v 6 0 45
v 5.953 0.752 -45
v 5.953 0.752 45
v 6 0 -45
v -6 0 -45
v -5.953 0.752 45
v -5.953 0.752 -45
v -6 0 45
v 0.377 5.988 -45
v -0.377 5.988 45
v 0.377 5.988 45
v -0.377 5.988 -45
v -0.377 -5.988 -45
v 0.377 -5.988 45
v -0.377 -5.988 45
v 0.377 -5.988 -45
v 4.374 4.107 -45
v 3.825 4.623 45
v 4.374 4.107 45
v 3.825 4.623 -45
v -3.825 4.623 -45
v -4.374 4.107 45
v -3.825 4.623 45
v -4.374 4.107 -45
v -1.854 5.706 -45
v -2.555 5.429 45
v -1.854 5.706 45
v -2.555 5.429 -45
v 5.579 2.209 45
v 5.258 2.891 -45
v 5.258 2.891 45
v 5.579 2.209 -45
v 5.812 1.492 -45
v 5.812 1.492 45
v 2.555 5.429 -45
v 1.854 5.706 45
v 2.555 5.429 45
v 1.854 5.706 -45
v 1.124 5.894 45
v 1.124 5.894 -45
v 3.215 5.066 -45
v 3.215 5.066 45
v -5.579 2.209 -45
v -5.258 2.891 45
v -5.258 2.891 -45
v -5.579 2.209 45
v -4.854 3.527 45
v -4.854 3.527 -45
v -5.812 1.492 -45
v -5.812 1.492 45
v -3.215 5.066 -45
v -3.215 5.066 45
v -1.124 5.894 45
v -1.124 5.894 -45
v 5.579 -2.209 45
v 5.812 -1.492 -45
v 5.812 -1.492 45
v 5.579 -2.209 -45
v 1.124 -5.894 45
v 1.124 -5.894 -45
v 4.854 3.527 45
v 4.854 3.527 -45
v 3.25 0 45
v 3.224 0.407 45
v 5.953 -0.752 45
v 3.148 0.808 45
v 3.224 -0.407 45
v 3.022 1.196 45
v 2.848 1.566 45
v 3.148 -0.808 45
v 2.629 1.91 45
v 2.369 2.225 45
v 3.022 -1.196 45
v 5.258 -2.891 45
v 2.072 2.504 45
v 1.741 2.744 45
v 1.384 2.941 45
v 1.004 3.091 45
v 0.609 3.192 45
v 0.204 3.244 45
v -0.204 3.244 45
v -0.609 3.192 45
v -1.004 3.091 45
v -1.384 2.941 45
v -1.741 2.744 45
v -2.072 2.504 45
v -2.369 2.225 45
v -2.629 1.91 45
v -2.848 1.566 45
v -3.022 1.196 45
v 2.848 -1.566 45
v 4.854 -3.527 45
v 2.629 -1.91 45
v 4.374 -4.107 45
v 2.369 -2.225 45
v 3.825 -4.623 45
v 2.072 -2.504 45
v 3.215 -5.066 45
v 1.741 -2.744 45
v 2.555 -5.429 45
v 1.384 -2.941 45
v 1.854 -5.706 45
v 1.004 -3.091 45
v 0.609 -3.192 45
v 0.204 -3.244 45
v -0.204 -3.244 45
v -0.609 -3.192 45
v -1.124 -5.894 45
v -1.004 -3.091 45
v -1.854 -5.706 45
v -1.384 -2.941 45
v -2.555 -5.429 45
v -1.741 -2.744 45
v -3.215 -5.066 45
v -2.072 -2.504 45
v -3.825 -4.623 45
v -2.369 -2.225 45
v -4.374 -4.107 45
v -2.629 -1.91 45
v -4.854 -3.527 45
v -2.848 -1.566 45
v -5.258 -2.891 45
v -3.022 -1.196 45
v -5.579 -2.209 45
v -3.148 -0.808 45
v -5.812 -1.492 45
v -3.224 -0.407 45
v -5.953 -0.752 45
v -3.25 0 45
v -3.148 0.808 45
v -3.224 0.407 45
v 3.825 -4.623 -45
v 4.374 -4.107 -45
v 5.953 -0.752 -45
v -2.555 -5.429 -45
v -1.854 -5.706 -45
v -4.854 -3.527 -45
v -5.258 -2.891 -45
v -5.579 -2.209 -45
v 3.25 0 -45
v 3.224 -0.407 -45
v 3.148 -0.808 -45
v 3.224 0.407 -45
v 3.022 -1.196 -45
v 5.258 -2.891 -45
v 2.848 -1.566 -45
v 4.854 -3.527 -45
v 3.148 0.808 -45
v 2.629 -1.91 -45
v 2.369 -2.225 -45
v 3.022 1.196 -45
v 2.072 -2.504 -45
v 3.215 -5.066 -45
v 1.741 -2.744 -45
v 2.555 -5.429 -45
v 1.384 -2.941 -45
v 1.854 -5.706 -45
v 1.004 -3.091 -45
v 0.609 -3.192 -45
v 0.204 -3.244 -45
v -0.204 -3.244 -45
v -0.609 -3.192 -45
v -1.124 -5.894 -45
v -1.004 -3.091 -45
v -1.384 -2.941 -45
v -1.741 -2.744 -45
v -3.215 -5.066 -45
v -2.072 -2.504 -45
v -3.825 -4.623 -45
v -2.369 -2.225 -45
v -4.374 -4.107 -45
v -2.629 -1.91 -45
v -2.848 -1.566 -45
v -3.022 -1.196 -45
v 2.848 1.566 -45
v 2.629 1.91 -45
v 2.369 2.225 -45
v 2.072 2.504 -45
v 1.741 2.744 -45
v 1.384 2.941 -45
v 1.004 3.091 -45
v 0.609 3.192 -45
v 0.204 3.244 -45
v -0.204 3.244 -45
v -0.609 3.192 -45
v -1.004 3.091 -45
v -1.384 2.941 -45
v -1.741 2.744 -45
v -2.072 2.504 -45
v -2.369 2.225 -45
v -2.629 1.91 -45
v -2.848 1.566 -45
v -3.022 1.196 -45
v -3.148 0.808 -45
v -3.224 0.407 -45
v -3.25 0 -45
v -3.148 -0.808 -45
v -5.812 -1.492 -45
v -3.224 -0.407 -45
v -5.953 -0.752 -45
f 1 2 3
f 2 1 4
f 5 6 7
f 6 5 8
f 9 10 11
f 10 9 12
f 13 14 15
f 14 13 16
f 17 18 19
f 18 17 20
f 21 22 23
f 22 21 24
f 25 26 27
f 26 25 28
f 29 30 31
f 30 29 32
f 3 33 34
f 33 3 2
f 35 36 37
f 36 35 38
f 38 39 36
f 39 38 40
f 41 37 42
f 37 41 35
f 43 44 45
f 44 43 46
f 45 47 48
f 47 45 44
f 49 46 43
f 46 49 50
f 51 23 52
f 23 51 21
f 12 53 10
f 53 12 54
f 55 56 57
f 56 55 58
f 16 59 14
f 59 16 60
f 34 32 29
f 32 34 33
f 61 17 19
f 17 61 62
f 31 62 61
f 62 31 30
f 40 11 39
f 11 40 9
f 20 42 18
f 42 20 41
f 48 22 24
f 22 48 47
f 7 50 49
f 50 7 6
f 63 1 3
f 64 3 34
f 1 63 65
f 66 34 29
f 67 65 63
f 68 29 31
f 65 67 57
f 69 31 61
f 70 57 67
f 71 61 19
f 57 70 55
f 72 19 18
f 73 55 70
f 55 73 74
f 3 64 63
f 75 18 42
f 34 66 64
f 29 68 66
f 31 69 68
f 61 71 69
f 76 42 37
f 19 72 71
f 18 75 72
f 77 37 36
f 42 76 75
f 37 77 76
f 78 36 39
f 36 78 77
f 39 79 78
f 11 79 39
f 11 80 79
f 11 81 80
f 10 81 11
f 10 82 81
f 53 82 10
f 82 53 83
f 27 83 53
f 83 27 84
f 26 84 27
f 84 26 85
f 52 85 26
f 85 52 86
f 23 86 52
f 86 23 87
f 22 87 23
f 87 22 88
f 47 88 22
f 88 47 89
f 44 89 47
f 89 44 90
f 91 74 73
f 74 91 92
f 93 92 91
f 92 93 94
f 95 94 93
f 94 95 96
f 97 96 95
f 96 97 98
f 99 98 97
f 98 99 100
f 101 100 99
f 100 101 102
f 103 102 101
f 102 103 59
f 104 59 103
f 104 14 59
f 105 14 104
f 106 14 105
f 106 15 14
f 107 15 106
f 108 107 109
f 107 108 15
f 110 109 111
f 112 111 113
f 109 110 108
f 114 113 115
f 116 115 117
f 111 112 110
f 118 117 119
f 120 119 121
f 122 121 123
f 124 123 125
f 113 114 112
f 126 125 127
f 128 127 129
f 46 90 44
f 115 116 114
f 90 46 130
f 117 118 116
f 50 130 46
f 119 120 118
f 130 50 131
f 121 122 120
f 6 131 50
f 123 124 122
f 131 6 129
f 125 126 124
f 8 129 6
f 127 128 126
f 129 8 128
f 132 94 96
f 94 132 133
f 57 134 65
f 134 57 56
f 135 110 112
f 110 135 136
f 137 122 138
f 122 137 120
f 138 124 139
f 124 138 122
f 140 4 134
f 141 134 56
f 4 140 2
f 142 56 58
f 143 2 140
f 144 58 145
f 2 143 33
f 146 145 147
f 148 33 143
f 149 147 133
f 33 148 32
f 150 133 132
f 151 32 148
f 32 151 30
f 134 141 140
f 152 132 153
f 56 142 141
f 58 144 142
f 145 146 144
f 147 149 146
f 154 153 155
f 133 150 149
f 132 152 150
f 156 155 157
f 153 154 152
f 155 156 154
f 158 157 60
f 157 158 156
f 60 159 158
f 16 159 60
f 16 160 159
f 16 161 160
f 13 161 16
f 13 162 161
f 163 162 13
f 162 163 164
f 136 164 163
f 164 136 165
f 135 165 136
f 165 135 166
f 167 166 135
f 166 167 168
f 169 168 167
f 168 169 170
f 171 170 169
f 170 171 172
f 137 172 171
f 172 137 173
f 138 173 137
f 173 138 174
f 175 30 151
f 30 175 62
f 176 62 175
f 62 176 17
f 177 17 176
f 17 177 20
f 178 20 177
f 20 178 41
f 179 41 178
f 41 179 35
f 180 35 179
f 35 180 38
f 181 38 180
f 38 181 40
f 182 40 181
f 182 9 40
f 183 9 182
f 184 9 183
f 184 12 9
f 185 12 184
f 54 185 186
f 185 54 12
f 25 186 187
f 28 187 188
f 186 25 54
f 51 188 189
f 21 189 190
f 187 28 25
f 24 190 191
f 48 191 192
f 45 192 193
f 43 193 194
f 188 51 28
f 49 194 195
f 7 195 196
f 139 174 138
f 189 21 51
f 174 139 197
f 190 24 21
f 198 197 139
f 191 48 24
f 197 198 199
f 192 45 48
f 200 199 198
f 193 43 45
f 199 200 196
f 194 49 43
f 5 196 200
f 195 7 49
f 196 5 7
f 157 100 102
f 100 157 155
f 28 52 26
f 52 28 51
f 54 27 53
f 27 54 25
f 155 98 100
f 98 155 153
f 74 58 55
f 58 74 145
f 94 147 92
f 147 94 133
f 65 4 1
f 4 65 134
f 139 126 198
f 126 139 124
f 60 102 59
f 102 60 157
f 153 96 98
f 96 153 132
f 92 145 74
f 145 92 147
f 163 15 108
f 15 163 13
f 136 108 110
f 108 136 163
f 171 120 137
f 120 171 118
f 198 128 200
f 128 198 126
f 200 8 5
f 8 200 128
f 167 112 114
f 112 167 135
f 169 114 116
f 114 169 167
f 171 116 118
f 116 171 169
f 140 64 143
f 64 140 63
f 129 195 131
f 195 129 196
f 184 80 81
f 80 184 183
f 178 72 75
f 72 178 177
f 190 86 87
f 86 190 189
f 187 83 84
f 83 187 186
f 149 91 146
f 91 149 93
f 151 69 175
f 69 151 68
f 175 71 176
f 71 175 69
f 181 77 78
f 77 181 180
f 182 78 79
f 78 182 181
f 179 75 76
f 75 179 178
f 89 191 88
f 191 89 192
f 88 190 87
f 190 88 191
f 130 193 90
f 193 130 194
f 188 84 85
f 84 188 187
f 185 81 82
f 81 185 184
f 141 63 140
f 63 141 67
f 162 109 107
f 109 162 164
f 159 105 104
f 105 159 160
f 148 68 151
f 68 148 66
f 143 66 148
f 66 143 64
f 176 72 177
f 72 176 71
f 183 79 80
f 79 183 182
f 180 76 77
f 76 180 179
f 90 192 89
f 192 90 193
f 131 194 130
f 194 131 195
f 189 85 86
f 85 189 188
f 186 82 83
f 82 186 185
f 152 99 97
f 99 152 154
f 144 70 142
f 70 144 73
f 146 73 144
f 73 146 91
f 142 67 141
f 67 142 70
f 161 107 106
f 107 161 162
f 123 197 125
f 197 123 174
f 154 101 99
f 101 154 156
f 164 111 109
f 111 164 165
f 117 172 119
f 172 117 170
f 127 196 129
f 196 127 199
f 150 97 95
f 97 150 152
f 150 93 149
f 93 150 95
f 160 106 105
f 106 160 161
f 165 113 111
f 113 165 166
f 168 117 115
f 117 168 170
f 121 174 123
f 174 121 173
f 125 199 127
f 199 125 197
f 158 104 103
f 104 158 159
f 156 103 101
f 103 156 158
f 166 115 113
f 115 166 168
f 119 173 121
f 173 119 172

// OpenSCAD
$fn = 50;


difference() {
	union() {
		translate(v = [0, 0, -45.0000000000]) {
			cylinder(h = 90, r = 6.0000000000);
		}
	}
	union() {
		translate(v = [0, 0, -100.0000000000]) {
			cylinder(h = 200, r = 3.2500000000);
		}
	}
}
